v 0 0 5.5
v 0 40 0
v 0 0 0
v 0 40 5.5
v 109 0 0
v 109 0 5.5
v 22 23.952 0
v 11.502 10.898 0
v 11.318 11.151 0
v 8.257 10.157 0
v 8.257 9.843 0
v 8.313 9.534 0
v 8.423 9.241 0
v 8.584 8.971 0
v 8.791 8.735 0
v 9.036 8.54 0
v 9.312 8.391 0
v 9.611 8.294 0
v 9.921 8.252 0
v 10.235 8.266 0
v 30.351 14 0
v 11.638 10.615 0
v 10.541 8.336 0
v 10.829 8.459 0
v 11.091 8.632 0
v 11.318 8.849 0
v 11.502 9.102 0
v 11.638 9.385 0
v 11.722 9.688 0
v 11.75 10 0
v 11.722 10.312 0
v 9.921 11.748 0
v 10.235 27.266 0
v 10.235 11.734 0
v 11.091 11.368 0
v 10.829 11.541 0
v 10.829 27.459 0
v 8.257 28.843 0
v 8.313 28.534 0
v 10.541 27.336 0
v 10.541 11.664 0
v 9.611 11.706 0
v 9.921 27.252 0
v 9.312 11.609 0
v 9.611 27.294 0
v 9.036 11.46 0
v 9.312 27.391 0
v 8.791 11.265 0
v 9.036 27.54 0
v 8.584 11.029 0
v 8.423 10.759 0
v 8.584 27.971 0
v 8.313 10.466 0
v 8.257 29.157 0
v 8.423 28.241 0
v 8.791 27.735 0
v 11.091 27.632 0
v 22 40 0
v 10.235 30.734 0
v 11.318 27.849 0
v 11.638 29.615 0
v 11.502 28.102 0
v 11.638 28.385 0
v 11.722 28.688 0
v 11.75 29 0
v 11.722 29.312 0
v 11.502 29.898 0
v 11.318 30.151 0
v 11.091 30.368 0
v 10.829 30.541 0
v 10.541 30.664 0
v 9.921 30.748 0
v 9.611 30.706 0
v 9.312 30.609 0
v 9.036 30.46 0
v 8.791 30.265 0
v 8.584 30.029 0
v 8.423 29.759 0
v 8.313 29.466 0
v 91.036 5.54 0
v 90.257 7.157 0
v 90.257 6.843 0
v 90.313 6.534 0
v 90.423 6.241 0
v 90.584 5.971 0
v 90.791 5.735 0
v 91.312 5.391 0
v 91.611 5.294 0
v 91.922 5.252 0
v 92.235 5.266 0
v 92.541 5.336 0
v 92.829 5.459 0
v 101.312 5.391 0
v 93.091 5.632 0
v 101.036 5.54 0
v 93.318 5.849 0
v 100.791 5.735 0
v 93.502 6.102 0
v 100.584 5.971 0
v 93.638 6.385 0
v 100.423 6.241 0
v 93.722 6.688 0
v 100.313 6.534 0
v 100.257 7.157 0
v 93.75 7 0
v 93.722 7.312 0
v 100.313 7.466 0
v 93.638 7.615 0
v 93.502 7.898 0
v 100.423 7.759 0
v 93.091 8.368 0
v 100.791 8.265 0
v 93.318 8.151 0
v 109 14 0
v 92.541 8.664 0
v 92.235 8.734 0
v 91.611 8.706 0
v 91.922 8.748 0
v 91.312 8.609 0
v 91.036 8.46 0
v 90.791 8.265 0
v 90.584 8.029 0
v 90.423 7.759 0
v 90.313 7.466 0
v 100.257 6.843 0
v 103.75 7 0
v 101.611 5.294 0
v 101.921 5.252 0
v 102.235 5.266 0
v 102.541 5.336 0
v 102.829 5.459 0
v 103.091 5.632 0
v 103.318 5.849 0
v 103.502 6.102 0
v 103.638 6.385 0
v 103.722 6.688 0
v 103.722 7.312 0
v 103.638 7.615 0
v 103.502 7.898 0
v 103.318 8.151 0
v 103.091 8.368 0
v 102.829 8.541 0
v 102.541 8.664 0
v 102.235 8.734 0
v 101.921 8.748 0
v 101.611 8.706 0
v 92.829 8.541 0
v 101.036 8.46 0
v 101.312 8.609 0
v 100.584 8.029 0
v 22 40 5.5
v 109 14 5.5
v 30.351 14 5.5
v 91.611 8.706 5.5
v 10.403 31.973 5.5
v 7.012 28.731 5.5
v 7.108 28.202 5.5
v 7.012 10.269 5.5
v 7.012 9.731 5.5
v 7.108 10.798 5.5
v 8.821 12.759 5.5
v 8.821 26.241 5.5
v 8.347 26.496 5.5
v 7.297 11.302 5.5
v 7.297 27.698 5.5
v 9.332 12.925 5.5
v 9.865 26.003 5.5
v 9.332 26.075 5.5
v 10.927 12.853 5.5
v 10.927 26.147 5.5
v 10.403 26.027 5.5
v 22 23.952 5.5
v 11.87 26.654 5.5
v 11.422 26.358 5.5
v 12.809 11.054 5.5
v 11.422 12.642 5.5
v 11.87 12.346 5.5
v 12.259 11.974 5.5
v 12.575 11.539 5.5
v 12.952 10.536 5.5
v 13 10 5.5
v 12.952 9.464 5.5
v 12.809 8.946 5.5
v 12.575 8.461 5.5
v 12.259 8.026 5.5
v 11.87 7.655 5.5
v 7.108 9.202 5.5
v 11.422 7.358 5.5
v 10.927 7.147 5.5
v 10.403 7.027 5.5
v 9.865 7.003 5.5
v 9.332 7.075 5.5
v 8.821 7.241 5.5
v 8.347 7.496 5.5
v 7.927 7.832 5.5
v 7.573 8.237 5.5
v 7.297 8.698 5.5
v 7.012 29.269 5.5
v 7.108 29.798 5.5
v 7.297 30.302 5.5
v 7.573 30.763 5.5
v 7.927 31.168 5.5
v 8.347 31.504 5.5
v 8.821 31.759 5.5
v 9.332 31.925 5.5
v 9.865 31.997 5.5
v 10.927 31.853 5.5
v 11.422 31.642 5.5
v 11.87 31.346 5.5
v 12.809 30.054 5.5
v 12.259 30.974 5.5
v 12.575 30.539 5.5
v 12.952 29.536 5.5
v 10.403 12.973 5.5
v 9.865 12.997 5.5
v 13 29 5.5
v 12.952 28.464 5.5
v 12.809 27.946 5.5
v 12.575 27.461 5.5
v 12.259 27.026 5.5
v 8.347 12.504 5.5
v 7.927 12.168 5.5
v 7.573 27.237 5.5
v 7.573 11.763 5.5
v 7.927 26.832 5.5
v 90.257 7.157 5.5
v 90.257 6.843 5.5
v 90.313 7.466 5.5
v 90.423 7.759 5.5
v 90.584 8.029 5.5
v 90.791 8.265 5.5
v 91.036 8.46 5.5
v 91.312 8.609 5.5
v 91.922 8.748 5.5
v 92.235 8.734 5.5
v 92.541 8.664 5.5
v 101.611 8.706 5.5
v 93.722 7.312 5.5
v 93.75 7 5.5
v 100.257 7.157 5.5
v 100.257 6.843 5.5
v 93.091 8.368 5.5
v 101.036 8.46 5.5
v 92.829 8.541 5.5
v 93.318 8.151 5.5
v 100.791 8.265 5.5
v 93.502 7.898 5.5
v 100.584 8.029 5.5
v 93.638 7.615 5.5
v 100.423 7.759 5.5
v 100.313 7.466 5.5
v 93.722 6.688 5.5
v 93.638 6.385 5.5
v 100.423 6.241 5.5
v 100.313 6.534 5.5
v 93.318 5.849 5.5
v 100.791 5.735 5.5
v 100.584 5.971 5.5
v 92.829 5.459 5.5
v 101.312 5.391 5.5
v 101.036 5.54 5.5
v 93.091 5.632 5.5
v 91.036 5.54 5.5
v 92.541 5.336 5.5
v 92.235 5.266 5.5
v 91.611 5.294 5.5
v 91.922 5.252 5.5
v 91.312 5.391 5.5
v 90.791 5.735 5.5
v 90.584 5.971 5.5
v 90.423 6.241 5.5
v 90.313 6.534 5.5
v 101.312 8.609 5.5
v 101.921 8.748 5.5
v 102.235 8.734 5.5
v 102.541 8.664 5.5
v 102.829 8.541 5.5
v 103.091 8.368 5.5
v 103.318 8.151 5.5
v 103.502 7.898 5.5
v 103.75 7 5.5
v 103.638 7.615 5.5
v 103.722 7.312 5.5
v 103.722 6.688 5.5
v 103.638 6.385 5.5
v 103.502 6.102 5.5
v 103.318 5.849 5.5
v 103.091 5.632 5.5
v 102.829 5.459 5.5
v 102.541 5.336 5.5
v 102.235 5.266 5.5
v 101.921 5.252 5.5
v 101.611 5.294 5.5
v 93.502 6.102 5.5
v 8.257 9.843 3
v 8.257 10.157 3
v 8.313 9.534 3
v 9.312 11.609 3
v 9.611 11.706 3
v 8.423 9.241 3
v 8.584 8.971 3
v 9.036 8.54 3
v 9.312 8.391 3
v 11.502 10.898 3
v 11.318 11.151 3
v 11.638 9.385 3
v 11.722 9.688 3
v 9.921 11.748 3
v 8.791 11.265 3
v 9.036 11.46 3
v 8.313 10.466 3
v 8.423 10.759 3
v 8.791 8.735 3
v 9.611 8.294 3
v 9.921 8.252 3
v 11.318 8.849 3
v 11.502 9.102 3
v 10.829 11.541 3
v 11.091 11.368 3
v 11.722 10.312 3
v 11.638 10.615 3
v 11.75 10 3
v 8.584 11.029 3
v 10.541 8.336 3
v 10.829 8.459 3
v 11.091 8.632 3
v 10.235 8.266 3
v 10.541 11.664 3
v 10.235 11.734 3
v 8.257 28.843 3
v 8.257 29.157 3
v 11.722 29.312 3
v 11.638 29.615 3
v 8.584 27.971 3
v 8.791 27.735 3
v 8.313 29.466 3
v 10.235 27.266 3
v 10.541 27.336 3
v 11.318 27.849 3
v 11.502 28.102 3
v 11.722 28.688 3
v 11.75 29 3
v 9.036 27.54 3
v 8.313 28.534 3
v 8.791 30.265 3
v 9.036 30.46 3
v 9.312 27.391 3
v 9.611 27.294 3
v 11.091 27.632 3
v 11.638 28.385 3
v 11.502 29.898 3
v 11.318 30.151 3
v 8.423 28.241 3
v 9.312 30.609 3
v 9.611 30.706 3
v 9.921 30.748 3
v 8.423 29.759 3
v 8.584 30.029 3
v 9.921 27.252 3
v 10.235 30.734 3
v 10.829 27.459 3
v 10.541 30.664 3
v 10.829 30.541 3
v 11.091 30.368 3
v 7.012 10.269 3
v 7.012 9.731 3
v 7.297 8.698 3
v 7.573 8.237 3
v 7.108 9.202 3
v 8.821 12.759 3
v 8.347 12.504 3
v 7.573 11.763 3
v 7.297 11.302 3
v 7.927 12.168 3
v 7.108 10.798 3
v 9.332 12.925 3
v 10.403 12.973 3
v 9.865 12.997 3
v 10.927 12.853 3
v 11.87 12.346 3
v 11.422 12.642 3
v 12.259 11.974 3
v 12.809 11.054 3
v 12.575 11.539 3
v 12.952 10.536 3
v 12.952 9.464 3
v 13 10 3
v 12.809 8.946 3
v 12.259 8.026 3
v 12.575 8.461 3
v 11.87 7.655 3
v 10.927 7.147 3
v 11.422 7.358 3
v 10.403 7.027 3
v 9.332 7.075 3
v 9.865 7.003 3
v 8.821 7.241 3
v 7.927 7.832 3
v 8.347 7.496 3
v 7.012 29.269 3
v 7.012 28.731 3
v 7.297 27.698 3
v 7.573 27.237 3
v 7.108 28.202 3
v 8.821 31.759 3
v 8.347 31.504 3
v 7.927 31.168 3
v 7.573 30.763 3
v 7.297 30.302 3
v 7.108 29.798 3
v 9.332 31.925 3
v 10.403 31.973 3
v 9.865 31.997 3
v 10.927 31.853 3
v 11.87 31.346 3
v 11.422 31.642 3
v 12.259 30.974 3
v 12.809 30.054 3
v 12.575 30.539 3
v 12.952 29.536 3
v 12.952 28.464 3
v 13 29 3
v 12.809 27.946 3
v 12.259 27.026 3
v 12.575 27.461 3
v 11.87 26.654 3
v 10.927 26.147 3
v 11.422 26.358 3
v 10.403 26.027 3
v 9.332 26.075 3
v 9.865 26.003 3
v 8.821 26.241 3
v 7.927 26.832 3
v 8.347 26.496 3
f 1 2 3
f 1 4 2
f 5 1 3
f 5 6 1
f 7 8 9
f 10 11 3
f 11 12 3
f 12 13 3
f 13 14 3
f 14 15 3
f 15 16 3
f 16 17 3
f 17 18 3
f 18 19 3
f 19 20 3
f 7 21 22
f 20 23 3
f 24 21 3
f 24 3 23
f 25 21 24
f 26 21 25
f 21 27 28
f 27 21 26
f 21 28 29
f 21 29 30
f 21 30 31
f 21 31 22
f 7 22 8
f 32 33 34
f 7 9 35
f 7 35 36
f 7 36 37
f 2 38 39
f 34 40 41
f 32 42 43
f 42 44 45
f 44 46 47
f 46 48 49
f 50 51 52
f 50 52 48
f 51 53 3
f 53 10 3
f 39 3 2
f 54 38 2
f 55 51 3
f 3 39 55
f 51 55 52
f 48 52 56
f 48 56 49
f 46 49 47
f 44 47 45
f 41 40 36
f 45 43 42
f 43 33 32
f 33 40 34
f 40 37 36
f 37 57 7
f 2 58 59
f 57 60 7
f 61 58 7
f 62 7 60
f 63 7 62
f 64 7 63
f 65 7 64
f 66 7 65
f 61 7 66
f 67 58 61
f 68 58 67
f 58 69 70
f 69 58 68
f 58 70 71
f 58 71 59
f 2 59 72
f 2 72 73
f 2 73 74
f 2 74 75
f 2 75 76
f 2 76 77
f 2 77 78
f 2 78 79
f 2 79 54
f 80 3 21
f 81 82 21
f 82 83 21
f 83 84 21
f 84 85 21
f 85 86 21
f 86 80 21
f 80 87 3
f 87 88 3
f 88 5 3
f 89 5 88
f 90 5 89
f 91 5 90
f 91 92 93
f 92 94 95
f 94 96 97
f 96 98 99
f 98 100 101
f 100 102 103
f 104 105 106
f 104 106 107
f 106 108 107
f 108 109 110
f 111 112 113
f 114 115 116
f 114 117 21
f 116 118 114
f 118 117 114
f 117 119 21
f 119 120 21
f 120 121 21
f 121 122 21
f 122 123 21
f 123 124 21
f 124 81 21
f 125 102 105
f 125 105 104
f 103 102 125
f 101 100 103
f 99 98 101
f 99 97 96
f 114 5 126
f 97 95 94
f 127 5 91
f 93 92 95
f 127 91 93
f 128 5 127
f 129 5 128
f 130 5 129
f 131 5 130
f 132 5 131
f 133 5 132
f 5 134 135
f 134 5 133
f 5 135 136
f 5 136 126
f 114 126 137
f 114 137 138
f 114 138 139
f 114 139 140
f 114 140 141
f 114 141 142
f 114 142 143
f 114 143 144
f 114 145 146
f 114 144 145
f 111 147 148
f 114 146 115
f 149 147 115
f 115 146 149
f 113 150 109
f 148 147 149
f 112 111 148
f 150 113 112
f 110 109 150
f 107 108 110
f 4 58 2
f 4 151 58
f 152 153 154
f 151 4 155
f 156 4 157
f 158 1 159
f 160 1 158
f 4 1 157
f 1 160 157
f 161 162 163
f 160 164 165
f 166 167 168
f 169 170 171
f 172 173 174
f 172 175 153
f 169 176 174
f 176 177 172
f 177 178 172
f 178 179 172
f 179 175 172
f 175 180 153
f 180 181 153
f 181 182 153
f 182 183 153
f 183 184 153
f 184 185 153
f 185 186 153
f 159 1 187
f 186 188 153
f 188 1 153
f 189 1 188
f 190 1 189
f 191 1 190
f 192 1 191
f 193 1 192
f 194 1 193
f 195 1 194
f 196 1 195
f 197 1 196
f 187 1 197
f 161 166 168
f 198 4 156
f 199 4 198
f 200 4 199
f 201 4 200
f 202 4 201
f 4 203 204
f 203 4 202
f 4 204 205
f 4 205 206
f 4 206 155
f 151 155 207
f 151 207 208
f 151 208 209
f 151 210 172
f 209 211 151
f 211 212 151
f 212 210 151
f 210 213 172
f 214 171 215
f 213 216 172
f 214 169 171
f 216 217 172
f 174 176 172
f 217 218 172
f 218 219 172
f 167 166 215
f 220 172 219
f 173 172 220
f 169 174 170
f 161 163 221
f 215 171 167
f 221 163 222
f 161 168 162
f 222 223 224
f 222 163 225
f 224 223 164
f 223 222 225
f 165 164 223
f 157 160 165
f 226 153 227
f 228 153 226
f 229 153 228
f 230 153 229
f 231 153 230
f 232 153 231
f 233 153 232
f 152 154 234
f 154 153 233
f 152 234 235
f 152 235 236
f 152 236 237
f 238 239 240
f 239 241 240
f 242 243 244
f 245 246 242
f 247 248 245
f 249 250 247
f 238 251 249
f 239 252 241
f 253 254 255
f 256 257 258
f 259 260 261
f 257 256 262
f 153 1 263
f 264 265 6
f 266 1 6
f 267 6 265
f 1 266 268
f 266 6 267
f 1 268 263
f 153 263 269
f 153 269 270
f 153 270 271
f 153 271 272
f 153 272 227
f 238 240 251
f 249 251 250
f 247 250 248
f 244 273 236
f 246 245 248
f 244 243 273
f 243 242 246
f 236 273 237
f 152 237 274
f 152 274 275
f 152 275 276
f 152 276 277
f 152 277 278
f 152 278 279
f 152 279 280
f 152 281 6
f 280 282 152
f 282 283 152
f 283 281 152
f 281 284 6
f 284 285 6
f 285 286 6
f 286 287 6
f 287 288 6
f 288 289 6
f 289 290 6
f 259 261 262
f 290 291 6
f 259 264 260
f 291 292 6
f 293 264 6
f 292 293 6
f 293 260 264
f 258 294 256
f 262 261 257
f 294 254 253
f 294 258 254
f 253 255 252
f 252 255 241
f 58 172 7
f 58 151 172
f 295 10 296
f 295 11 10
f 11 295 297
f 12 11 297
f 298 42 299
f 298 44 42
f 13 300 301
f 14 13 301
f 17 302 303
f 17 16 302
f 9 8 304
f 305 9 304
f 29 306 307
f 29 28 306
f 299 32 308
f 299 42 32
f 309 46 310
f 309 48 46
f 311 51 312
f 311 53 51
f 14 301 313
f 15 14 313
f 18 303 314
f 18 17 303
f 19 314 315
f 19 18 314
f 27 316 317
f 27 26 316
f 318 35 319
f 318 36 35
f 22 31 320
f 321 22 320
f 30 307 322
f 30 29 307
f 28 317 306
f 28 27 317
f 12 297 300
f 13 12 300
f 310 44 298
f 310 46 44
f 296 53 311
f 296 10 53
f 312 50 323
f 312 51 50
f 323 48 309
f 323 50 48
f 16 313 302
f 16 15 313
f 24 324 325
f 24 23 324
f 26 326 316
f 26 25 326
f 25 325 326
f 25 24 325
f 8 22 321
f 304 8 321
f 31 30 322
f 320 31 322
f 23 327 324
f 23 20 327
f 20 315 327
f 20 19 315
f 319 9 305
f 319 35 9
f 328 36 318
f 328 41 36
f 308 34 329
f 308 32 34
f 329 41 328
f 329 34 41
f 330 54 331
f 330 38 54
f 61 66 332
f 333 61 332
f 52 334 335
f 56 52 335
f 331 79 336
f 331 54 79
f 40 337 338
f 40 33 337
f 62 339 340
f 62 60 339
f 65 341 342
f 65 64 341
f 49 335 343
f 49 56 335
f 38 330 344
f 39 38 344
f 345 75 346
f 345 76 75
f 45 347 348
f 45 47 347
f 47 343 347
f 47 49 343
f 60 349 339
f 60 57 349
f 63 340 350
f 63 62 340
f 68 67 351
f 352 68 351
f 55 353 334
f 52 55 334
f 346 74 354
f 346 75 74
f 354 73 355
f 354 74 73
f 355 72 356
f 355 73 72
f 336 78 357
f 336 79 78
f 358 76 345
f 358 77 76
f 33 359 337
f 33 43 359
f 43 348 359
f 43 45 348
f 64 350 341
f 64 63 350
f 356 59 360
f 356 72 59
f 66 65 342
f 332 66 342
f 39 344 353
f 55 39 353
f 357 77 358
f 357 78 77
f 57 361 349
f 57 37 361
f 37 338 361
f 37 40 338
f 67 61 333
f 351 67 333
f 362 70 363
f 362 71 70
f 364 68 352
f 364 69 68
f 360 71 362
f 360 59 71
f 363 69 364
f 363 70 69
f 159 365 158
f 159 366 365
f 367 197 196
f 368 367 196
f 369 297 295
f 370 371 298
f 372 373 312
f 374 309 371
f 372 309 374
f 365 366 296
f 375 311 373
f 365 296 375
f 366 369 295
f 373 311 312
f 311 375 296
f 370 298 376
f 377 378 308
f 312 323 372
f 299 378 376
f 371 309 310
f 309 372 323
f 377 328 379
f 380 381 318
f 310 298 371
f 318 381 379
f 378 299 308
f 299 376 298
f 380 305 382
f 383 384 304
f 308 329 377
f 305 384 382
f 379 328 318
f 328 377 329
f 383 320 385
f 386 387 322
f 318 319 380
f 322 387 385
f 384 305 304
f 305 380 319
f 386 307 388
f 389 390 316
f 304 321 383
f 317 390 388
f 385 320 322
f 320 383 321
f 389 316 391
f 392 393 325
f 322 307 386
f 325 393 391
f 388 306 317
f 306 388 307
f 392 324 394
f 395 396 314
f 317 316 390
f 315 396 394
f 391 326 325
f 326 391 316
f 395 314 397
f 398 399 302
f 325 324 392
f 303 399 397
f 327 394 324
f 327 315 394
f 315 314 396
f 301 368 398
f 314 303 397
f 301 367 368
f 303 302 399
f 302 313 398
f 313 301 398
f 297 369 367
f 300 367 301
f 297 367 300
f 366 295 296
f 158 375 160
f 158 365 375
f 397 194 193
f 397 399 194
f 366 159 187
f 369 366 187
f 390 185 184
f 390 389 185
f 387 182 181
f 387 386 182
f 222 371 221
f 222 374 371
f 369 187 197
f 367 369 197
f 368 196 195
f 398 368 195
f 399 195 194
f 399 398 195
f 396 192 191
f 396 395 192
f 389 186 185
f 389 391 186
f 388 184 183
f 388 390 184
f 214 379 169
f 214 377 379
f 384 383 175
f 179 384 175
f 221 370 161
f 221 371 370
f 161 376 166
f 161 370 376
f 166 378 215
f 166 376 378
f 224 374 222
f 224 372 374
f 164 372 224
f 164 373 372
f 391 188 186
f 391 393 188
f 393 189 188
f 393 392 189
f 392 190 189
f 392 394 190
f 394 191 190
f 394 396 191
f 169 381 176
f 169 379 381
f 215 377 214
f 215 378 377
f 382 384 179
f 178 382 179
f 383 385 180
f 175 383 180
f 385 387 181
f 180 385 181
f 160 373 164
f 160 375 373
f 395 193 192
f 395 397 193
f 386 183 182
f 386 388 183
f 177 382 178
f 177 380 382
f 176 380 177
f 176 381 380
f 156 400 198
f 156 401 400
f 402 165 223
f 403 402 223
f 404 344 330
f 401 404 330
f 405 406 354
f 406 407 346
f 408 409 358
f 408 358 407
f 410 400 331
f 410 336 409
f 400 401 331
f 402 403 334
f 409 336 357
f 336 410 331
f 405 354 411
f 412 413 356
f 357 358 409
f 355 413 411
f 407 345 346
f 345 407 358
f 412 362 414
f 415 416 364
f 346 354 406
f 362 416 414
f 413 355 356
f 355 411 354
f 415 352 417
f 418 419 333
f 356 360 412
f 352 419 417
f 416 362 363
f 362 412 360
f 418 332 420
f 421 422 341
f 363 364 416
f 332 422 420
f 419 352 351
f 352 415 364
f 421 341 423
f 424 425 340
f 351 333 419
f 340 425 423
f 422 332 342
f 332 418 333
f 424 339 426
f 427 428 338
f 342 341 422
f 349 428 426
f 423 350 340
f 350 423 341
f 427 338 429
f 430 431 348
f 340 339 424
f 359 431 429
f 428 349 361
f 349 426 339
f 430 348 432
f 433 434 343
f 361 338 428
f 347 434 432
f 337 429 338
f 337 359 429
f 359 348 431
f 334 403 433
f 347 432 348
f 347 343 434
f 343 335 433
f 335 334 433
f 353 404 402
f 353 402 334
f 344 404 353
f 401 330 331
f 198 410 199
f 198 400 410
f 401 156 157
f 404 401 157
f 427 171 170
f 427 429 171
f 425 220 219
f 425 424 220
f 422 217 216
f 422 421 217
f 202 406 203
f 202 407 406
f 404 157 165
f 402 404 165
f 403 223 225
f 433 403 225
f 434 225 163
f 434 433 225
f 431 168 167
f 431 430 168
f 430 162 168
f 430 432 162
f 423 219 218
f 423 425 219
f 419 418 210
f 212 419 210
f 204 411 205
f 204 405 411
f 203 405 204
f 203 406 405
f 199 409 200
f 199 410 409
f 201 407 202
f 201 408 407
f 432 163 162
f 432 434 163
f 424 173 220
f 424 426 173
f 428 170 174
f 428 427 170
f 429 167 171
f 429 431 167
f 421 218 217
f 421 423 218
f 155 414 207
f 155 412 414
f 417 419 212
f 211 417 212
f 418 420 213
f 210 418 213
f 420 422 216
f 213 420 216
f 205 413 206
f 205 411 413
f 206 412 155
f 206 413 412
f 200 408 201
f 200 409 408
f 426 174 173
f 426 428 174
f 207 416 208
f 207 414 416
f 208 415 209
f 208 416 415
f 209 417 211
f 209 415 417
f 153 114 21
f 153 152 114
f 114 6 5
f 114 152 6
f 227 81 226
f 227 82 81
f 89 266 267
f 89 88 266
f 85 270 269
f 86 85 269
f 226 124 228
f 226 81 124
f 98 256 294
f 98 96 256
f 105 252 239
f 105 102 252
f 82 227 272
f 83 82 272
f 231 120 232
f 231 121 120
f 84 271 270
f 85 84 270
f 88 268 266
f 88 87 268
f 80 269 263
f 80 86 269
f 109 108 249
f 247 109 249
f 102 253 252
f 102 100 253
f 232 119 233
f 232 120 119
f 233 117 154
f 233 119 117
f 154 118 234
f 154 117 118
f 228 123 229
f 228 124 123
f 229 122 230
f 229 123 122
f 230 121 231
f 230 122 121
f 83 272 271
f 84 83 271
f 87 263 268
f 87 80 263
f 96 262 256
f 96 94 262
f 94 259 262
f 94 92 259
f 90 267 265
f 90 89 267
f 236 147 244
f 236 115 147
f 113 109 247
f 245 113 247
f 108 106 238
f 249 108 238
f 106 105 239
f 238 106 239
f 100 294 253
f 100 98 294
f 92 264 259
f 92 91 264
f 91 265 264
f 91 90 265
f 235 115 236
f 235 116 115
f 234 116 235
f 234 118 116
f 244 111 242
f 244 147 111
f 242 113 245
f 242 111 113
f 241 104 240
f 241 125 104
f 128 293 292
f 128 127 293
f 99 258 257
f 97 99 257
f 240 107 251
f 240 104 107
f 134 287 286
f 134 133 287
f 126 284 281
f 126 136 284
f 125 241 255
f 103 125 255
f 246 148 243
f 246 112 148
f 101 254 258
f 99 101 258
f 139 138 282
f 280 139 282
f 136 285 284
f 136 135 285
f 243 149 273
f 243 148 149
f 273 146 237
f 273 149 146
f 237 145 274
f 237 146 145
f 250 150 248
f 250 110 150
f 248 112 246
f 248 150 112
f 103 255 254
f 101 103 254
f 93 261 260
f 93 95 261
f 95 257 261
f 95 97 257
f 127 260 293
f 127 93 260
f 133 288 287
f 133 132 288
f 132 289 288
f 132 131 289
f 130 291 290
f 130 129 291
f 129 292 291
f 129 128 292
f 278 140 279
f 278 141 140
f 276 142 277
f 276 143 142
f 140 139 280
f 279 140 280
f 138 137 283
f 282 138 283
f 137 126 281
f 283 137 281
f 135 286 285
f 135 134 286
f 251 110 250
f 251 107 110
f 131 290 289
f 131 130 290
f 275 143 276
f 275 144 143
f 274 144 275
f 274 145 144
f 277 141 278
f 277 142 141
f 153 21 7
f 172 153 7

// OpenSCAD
//spool holder that attaches to the side of a kossel 2020 with m3 t nuts

$fn = 35;

//frame attachment piece
difference(){
    cube([22,40,5.5]);

    //screw holes
    translate([10,10,-1])
        cylinder(20,d=3.5);  
    translate([10,29,-1])
        cylinder(20,d=3.5);
    
    //screw head indent
    translate([10,10,3])
        cylinder(20,d=6);  
    translate([10,29,3])
        cylinder(20,d=6);
    }
    
//main spool holding arm
translate([22,0,0])
    difference(){
        cube([87,14,5.5]);

        translate([70,7,-1])
            cylinder(20,d=3.5);
        
        translate([80,7,-1])
            cylinder(20,d=3.5);
        }
        
//support for extrusion attachment and main arm
translate([20,3,0])
rotate(40)
        cube([15,15,5.5]);
